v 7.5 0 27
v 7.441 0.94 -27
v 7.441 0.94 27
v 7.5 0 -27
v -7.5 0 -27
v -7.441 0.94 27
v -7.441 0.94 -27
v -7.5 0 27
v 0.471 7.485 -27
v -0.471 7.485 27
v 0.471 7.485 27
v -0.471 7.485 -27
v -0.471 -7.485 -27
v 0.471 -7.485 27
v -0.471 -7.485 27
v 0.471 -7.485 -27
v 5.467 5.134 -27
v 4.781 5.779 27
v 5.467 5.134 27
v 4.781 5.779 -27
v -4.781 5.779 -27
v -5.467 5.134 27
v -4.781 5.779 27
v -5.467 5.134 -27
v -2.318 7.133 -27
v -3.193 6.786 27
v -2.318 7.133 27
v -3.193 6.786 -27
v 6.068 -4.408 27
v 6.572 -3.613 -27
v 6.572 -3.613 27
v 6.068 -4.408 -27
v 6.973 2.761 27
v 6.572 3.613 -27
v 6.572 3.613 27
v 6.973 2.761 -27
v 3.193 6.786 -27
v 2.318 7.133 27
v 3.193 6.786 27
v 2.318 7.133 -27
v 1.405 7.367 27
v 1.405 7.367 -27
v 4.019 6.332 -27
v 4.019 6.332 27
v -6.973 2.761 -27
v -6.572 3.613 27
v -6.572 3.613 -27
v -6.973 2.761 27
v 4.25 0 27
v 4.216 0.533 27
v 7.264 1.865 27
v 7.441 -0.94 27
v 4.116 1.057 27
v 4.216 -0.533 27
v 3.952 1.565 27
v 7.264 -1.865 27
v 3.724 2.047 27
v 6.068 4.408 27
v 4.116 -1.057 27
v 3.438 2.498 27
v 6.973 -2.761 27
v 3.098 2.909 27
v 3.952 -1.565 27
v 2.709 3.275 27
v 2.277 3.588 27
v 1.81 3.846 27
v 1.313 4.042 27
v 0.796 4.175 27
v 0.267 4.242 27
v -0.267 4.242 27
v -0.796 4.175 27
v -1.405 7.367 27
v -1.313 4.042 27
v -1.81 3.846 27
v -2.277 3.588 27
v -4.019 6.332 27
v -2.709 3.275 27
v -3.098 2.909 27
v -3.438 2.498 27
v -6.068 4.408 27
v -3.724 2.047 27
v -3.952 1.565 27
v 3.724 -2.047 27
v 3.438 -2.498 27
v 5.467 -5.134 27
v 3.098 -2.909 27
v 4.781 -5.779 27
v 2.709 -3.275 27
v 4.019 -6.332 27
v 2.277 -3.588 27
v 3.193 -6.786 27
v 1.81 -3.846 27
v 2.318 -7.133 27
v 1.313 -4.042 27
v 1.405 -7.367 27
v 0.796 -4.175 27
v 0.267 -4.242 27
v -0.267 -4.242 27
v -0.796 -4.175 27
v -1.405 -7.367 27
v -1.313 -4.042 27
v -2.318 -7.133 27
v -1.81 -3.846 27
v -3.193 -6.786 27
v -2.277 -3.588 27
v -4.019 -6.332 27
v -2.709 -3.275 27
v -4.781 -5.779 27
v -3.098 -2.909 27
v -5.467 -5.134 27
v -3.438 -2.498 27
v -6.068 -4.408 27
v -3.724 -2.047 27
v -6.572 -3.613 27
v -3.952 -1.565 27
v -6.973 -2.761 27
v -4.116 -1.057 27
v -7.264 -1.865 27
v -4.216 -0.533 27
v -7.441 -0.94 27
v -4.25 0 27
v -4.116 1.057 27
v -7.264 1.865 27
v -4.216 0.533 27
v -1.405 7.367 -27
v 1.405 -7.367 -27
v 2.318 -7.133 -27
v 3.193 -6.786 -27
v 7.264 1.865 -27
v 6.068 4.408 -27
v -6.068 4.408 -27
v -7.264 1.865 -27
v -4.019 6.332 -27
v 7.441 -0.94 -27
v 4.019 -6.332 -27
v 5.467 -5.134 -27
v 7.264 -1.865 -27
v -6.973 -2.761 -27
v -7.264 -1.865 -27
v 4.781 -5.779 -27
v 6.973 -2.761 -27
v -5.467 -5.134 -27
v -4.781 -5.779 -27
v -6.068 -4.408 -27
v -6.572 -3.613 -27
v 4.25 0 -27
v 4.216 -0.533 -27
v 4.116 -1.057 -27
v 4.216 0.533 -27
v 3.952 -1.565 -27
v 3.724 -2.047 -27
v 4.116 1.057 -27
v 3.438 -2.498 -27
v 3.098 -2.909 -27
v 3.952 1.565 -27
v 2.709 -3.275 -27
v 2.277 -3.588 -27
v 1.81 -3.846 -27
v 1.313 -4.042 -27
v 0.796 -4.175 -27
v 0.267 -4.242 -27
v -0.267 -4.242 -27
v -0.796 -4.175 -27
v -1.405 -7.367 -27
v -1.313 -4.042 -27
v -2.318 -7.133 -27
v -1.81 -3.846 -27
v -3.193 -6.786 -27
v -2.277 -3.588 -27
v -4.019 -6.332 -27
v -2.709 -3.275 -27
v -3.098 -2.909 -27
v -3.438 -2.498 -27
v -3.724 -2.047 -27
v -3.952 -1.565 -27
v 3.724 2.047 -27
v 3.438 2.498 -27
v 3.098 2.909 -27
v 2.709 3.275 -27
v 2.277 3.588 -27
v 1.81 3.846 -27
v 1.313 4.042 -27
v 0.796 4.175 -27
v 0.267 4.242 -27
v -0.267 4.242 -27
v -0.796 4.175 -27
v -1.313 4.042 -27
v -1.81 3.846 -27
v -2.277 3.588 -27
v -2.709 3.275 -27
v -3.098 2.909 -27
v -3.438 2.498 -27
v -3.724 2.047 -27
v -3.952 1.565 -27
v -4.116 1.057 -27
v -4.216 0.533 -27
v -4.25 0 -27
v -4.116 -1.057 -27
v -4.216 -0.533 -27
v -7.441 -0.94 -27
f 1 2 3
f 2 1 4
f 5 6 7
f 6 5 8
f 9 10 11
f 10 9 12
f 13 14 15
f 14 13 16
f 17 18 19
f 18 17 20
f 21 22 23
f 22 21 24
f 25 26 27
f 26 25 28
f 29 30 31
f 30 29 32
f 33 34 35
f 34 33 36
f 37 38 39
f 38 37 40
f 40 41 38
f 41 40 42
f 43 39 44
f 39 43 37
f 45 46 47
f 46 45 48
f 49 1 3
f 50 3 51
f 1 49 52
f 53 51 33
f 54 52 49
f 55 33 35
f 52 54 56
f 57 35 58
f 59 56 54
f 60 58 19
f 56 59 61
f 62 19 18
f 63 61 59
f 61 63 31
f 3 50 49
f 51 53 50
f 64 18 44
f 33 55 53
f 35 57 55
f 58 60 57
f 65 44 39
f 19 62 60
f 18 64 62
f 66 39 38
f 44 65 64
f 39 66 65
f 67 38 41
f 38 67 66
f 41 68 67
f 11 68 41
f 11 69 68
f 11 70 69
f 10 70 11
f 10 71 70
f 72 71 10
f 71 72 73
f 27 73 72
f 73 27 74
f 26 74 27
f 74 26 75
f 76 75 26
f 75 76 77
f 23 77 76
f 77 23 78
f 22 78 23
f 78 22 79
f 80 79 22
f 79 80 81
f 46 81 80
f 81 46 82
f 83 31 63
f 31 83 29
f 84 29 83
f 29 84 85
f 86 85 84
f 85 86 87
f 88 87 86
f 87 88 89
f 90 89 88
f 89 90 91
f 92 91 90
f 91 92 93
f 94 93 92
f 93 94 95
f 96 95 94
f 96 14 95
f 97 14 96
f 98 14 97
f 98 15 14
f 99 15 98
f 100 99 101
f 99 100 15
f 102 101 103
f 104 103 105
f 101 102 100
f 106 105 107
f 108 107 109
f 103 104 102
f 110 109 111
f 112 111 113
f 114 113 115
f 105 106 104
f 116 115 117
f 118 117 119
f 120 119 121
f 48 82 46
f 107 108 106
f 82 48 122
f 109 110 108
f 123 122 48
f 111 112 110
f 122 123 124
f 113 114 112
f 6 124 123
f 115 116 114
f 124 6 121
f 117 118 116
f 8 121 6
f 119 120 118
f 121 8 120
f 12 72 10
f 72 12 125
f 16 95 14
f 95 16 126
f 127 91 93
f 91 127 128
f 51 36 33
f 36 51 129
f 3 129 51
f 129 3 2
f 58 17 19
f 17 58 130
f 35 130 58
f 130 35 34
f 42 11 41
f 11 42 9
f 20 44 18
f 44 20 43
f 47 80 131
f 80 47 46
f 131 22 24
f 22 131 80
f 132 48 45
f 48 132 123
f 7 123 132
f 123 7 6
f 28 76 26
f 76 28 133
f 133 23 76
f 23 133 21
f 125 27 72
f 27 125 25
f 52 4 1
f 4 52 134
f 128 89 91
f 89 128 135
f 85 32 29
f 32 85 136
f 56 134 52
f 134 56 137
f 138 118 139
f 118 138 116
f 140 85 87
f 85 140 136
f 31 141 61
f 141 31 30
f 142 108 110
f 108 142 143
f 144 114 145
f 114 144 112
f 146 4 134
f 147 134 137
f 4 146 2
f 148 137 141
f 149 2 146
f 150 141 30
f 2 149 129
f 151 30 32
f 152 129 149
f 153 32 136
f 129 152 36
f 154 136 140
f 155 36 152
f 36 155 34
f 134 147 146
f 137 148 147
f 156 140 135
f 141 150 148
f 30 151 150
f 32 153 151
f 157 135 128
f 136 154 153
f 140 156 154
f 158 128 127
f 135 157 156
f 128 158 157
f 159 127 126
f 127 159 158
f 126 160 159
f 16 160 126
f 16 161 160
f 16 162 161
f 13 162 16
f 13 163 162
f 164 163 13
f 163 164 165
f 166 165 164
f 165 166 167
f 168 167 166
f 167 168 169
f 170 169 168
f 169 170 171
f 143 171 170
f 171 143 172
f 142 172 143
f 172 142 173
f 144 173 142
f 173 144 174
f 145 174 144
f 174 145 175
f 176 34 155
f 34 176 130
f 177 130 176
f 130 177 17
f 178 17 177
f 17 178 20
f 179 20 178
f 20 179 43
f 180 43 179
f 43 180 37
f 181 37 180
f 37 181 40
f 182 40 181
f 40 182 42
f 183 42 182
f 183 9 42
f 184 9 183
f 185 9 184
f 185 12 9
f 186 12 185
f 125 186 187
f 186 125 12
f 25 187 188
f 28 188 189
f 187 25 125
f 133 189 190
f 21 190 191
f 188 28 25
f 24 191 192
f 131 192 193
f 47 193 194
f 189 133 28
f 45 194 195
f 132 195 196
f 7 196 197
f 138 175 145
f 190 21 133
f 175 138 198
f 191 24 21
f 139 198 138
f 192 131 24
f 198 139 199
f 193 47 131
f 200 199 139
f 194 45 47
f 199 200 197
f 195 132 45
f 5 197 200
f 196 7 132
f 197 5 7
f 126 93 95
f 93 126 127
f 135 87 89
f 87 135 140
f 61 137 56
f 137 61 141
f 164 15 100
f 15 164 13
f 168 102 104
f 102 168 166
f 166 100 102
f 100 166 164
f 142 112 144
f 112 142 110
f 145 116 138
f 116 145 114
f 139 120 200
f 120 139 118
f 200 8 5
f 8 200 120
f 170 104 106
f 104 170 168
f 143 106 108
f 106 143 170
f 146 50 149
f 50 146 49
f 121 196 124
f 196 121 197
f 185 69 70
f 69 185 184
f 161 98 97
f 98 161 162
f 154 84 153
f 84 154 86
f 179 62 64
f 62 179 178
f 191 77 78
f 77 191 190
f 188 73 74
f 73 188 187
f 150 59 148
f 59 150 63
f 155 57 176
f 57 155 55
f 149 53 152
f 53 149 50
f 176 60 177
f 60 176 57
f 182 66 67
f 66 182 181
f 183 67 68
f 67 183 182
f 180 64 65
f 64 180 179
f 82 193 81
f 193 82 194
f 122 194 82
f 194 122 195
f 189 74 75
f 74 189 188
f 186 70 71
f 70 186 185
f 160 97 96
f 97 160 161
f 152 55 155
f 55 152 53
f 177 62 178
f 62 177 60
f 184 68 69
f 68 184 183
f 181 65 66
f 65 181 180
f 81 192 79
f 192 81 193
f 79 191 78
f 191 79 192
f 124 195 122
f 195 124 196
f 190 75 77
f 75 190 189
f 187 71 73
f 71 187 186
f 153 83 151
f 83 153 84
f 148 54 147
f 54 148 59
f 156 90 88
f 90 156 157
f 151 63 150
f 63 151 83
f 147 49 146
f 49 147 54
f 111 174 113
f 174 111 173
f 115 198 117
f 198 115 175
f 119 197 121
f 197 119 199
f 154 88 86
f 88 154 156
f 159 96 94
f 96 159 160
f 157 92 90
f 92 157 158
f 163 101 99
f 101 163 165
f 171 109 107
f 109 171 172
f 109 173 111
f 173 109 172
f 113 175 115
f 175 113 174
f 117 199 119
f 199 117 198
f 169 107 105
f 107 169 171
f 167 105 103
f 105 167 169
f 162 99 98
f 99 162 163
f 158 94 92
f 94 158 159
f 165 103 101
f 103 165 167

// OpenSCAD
$fn = 50;


difference() {
	union() {
		translate(v = [0, 0, -27.0000000000]) {
			cylinder(h = 54, r = 7.5000000000);
		}
	}
	union() {
		translate(v = [0, 0, -100.0000000000]) {
			cylinder(h = 200, r = 4.2500000000);
		}
	}
}
